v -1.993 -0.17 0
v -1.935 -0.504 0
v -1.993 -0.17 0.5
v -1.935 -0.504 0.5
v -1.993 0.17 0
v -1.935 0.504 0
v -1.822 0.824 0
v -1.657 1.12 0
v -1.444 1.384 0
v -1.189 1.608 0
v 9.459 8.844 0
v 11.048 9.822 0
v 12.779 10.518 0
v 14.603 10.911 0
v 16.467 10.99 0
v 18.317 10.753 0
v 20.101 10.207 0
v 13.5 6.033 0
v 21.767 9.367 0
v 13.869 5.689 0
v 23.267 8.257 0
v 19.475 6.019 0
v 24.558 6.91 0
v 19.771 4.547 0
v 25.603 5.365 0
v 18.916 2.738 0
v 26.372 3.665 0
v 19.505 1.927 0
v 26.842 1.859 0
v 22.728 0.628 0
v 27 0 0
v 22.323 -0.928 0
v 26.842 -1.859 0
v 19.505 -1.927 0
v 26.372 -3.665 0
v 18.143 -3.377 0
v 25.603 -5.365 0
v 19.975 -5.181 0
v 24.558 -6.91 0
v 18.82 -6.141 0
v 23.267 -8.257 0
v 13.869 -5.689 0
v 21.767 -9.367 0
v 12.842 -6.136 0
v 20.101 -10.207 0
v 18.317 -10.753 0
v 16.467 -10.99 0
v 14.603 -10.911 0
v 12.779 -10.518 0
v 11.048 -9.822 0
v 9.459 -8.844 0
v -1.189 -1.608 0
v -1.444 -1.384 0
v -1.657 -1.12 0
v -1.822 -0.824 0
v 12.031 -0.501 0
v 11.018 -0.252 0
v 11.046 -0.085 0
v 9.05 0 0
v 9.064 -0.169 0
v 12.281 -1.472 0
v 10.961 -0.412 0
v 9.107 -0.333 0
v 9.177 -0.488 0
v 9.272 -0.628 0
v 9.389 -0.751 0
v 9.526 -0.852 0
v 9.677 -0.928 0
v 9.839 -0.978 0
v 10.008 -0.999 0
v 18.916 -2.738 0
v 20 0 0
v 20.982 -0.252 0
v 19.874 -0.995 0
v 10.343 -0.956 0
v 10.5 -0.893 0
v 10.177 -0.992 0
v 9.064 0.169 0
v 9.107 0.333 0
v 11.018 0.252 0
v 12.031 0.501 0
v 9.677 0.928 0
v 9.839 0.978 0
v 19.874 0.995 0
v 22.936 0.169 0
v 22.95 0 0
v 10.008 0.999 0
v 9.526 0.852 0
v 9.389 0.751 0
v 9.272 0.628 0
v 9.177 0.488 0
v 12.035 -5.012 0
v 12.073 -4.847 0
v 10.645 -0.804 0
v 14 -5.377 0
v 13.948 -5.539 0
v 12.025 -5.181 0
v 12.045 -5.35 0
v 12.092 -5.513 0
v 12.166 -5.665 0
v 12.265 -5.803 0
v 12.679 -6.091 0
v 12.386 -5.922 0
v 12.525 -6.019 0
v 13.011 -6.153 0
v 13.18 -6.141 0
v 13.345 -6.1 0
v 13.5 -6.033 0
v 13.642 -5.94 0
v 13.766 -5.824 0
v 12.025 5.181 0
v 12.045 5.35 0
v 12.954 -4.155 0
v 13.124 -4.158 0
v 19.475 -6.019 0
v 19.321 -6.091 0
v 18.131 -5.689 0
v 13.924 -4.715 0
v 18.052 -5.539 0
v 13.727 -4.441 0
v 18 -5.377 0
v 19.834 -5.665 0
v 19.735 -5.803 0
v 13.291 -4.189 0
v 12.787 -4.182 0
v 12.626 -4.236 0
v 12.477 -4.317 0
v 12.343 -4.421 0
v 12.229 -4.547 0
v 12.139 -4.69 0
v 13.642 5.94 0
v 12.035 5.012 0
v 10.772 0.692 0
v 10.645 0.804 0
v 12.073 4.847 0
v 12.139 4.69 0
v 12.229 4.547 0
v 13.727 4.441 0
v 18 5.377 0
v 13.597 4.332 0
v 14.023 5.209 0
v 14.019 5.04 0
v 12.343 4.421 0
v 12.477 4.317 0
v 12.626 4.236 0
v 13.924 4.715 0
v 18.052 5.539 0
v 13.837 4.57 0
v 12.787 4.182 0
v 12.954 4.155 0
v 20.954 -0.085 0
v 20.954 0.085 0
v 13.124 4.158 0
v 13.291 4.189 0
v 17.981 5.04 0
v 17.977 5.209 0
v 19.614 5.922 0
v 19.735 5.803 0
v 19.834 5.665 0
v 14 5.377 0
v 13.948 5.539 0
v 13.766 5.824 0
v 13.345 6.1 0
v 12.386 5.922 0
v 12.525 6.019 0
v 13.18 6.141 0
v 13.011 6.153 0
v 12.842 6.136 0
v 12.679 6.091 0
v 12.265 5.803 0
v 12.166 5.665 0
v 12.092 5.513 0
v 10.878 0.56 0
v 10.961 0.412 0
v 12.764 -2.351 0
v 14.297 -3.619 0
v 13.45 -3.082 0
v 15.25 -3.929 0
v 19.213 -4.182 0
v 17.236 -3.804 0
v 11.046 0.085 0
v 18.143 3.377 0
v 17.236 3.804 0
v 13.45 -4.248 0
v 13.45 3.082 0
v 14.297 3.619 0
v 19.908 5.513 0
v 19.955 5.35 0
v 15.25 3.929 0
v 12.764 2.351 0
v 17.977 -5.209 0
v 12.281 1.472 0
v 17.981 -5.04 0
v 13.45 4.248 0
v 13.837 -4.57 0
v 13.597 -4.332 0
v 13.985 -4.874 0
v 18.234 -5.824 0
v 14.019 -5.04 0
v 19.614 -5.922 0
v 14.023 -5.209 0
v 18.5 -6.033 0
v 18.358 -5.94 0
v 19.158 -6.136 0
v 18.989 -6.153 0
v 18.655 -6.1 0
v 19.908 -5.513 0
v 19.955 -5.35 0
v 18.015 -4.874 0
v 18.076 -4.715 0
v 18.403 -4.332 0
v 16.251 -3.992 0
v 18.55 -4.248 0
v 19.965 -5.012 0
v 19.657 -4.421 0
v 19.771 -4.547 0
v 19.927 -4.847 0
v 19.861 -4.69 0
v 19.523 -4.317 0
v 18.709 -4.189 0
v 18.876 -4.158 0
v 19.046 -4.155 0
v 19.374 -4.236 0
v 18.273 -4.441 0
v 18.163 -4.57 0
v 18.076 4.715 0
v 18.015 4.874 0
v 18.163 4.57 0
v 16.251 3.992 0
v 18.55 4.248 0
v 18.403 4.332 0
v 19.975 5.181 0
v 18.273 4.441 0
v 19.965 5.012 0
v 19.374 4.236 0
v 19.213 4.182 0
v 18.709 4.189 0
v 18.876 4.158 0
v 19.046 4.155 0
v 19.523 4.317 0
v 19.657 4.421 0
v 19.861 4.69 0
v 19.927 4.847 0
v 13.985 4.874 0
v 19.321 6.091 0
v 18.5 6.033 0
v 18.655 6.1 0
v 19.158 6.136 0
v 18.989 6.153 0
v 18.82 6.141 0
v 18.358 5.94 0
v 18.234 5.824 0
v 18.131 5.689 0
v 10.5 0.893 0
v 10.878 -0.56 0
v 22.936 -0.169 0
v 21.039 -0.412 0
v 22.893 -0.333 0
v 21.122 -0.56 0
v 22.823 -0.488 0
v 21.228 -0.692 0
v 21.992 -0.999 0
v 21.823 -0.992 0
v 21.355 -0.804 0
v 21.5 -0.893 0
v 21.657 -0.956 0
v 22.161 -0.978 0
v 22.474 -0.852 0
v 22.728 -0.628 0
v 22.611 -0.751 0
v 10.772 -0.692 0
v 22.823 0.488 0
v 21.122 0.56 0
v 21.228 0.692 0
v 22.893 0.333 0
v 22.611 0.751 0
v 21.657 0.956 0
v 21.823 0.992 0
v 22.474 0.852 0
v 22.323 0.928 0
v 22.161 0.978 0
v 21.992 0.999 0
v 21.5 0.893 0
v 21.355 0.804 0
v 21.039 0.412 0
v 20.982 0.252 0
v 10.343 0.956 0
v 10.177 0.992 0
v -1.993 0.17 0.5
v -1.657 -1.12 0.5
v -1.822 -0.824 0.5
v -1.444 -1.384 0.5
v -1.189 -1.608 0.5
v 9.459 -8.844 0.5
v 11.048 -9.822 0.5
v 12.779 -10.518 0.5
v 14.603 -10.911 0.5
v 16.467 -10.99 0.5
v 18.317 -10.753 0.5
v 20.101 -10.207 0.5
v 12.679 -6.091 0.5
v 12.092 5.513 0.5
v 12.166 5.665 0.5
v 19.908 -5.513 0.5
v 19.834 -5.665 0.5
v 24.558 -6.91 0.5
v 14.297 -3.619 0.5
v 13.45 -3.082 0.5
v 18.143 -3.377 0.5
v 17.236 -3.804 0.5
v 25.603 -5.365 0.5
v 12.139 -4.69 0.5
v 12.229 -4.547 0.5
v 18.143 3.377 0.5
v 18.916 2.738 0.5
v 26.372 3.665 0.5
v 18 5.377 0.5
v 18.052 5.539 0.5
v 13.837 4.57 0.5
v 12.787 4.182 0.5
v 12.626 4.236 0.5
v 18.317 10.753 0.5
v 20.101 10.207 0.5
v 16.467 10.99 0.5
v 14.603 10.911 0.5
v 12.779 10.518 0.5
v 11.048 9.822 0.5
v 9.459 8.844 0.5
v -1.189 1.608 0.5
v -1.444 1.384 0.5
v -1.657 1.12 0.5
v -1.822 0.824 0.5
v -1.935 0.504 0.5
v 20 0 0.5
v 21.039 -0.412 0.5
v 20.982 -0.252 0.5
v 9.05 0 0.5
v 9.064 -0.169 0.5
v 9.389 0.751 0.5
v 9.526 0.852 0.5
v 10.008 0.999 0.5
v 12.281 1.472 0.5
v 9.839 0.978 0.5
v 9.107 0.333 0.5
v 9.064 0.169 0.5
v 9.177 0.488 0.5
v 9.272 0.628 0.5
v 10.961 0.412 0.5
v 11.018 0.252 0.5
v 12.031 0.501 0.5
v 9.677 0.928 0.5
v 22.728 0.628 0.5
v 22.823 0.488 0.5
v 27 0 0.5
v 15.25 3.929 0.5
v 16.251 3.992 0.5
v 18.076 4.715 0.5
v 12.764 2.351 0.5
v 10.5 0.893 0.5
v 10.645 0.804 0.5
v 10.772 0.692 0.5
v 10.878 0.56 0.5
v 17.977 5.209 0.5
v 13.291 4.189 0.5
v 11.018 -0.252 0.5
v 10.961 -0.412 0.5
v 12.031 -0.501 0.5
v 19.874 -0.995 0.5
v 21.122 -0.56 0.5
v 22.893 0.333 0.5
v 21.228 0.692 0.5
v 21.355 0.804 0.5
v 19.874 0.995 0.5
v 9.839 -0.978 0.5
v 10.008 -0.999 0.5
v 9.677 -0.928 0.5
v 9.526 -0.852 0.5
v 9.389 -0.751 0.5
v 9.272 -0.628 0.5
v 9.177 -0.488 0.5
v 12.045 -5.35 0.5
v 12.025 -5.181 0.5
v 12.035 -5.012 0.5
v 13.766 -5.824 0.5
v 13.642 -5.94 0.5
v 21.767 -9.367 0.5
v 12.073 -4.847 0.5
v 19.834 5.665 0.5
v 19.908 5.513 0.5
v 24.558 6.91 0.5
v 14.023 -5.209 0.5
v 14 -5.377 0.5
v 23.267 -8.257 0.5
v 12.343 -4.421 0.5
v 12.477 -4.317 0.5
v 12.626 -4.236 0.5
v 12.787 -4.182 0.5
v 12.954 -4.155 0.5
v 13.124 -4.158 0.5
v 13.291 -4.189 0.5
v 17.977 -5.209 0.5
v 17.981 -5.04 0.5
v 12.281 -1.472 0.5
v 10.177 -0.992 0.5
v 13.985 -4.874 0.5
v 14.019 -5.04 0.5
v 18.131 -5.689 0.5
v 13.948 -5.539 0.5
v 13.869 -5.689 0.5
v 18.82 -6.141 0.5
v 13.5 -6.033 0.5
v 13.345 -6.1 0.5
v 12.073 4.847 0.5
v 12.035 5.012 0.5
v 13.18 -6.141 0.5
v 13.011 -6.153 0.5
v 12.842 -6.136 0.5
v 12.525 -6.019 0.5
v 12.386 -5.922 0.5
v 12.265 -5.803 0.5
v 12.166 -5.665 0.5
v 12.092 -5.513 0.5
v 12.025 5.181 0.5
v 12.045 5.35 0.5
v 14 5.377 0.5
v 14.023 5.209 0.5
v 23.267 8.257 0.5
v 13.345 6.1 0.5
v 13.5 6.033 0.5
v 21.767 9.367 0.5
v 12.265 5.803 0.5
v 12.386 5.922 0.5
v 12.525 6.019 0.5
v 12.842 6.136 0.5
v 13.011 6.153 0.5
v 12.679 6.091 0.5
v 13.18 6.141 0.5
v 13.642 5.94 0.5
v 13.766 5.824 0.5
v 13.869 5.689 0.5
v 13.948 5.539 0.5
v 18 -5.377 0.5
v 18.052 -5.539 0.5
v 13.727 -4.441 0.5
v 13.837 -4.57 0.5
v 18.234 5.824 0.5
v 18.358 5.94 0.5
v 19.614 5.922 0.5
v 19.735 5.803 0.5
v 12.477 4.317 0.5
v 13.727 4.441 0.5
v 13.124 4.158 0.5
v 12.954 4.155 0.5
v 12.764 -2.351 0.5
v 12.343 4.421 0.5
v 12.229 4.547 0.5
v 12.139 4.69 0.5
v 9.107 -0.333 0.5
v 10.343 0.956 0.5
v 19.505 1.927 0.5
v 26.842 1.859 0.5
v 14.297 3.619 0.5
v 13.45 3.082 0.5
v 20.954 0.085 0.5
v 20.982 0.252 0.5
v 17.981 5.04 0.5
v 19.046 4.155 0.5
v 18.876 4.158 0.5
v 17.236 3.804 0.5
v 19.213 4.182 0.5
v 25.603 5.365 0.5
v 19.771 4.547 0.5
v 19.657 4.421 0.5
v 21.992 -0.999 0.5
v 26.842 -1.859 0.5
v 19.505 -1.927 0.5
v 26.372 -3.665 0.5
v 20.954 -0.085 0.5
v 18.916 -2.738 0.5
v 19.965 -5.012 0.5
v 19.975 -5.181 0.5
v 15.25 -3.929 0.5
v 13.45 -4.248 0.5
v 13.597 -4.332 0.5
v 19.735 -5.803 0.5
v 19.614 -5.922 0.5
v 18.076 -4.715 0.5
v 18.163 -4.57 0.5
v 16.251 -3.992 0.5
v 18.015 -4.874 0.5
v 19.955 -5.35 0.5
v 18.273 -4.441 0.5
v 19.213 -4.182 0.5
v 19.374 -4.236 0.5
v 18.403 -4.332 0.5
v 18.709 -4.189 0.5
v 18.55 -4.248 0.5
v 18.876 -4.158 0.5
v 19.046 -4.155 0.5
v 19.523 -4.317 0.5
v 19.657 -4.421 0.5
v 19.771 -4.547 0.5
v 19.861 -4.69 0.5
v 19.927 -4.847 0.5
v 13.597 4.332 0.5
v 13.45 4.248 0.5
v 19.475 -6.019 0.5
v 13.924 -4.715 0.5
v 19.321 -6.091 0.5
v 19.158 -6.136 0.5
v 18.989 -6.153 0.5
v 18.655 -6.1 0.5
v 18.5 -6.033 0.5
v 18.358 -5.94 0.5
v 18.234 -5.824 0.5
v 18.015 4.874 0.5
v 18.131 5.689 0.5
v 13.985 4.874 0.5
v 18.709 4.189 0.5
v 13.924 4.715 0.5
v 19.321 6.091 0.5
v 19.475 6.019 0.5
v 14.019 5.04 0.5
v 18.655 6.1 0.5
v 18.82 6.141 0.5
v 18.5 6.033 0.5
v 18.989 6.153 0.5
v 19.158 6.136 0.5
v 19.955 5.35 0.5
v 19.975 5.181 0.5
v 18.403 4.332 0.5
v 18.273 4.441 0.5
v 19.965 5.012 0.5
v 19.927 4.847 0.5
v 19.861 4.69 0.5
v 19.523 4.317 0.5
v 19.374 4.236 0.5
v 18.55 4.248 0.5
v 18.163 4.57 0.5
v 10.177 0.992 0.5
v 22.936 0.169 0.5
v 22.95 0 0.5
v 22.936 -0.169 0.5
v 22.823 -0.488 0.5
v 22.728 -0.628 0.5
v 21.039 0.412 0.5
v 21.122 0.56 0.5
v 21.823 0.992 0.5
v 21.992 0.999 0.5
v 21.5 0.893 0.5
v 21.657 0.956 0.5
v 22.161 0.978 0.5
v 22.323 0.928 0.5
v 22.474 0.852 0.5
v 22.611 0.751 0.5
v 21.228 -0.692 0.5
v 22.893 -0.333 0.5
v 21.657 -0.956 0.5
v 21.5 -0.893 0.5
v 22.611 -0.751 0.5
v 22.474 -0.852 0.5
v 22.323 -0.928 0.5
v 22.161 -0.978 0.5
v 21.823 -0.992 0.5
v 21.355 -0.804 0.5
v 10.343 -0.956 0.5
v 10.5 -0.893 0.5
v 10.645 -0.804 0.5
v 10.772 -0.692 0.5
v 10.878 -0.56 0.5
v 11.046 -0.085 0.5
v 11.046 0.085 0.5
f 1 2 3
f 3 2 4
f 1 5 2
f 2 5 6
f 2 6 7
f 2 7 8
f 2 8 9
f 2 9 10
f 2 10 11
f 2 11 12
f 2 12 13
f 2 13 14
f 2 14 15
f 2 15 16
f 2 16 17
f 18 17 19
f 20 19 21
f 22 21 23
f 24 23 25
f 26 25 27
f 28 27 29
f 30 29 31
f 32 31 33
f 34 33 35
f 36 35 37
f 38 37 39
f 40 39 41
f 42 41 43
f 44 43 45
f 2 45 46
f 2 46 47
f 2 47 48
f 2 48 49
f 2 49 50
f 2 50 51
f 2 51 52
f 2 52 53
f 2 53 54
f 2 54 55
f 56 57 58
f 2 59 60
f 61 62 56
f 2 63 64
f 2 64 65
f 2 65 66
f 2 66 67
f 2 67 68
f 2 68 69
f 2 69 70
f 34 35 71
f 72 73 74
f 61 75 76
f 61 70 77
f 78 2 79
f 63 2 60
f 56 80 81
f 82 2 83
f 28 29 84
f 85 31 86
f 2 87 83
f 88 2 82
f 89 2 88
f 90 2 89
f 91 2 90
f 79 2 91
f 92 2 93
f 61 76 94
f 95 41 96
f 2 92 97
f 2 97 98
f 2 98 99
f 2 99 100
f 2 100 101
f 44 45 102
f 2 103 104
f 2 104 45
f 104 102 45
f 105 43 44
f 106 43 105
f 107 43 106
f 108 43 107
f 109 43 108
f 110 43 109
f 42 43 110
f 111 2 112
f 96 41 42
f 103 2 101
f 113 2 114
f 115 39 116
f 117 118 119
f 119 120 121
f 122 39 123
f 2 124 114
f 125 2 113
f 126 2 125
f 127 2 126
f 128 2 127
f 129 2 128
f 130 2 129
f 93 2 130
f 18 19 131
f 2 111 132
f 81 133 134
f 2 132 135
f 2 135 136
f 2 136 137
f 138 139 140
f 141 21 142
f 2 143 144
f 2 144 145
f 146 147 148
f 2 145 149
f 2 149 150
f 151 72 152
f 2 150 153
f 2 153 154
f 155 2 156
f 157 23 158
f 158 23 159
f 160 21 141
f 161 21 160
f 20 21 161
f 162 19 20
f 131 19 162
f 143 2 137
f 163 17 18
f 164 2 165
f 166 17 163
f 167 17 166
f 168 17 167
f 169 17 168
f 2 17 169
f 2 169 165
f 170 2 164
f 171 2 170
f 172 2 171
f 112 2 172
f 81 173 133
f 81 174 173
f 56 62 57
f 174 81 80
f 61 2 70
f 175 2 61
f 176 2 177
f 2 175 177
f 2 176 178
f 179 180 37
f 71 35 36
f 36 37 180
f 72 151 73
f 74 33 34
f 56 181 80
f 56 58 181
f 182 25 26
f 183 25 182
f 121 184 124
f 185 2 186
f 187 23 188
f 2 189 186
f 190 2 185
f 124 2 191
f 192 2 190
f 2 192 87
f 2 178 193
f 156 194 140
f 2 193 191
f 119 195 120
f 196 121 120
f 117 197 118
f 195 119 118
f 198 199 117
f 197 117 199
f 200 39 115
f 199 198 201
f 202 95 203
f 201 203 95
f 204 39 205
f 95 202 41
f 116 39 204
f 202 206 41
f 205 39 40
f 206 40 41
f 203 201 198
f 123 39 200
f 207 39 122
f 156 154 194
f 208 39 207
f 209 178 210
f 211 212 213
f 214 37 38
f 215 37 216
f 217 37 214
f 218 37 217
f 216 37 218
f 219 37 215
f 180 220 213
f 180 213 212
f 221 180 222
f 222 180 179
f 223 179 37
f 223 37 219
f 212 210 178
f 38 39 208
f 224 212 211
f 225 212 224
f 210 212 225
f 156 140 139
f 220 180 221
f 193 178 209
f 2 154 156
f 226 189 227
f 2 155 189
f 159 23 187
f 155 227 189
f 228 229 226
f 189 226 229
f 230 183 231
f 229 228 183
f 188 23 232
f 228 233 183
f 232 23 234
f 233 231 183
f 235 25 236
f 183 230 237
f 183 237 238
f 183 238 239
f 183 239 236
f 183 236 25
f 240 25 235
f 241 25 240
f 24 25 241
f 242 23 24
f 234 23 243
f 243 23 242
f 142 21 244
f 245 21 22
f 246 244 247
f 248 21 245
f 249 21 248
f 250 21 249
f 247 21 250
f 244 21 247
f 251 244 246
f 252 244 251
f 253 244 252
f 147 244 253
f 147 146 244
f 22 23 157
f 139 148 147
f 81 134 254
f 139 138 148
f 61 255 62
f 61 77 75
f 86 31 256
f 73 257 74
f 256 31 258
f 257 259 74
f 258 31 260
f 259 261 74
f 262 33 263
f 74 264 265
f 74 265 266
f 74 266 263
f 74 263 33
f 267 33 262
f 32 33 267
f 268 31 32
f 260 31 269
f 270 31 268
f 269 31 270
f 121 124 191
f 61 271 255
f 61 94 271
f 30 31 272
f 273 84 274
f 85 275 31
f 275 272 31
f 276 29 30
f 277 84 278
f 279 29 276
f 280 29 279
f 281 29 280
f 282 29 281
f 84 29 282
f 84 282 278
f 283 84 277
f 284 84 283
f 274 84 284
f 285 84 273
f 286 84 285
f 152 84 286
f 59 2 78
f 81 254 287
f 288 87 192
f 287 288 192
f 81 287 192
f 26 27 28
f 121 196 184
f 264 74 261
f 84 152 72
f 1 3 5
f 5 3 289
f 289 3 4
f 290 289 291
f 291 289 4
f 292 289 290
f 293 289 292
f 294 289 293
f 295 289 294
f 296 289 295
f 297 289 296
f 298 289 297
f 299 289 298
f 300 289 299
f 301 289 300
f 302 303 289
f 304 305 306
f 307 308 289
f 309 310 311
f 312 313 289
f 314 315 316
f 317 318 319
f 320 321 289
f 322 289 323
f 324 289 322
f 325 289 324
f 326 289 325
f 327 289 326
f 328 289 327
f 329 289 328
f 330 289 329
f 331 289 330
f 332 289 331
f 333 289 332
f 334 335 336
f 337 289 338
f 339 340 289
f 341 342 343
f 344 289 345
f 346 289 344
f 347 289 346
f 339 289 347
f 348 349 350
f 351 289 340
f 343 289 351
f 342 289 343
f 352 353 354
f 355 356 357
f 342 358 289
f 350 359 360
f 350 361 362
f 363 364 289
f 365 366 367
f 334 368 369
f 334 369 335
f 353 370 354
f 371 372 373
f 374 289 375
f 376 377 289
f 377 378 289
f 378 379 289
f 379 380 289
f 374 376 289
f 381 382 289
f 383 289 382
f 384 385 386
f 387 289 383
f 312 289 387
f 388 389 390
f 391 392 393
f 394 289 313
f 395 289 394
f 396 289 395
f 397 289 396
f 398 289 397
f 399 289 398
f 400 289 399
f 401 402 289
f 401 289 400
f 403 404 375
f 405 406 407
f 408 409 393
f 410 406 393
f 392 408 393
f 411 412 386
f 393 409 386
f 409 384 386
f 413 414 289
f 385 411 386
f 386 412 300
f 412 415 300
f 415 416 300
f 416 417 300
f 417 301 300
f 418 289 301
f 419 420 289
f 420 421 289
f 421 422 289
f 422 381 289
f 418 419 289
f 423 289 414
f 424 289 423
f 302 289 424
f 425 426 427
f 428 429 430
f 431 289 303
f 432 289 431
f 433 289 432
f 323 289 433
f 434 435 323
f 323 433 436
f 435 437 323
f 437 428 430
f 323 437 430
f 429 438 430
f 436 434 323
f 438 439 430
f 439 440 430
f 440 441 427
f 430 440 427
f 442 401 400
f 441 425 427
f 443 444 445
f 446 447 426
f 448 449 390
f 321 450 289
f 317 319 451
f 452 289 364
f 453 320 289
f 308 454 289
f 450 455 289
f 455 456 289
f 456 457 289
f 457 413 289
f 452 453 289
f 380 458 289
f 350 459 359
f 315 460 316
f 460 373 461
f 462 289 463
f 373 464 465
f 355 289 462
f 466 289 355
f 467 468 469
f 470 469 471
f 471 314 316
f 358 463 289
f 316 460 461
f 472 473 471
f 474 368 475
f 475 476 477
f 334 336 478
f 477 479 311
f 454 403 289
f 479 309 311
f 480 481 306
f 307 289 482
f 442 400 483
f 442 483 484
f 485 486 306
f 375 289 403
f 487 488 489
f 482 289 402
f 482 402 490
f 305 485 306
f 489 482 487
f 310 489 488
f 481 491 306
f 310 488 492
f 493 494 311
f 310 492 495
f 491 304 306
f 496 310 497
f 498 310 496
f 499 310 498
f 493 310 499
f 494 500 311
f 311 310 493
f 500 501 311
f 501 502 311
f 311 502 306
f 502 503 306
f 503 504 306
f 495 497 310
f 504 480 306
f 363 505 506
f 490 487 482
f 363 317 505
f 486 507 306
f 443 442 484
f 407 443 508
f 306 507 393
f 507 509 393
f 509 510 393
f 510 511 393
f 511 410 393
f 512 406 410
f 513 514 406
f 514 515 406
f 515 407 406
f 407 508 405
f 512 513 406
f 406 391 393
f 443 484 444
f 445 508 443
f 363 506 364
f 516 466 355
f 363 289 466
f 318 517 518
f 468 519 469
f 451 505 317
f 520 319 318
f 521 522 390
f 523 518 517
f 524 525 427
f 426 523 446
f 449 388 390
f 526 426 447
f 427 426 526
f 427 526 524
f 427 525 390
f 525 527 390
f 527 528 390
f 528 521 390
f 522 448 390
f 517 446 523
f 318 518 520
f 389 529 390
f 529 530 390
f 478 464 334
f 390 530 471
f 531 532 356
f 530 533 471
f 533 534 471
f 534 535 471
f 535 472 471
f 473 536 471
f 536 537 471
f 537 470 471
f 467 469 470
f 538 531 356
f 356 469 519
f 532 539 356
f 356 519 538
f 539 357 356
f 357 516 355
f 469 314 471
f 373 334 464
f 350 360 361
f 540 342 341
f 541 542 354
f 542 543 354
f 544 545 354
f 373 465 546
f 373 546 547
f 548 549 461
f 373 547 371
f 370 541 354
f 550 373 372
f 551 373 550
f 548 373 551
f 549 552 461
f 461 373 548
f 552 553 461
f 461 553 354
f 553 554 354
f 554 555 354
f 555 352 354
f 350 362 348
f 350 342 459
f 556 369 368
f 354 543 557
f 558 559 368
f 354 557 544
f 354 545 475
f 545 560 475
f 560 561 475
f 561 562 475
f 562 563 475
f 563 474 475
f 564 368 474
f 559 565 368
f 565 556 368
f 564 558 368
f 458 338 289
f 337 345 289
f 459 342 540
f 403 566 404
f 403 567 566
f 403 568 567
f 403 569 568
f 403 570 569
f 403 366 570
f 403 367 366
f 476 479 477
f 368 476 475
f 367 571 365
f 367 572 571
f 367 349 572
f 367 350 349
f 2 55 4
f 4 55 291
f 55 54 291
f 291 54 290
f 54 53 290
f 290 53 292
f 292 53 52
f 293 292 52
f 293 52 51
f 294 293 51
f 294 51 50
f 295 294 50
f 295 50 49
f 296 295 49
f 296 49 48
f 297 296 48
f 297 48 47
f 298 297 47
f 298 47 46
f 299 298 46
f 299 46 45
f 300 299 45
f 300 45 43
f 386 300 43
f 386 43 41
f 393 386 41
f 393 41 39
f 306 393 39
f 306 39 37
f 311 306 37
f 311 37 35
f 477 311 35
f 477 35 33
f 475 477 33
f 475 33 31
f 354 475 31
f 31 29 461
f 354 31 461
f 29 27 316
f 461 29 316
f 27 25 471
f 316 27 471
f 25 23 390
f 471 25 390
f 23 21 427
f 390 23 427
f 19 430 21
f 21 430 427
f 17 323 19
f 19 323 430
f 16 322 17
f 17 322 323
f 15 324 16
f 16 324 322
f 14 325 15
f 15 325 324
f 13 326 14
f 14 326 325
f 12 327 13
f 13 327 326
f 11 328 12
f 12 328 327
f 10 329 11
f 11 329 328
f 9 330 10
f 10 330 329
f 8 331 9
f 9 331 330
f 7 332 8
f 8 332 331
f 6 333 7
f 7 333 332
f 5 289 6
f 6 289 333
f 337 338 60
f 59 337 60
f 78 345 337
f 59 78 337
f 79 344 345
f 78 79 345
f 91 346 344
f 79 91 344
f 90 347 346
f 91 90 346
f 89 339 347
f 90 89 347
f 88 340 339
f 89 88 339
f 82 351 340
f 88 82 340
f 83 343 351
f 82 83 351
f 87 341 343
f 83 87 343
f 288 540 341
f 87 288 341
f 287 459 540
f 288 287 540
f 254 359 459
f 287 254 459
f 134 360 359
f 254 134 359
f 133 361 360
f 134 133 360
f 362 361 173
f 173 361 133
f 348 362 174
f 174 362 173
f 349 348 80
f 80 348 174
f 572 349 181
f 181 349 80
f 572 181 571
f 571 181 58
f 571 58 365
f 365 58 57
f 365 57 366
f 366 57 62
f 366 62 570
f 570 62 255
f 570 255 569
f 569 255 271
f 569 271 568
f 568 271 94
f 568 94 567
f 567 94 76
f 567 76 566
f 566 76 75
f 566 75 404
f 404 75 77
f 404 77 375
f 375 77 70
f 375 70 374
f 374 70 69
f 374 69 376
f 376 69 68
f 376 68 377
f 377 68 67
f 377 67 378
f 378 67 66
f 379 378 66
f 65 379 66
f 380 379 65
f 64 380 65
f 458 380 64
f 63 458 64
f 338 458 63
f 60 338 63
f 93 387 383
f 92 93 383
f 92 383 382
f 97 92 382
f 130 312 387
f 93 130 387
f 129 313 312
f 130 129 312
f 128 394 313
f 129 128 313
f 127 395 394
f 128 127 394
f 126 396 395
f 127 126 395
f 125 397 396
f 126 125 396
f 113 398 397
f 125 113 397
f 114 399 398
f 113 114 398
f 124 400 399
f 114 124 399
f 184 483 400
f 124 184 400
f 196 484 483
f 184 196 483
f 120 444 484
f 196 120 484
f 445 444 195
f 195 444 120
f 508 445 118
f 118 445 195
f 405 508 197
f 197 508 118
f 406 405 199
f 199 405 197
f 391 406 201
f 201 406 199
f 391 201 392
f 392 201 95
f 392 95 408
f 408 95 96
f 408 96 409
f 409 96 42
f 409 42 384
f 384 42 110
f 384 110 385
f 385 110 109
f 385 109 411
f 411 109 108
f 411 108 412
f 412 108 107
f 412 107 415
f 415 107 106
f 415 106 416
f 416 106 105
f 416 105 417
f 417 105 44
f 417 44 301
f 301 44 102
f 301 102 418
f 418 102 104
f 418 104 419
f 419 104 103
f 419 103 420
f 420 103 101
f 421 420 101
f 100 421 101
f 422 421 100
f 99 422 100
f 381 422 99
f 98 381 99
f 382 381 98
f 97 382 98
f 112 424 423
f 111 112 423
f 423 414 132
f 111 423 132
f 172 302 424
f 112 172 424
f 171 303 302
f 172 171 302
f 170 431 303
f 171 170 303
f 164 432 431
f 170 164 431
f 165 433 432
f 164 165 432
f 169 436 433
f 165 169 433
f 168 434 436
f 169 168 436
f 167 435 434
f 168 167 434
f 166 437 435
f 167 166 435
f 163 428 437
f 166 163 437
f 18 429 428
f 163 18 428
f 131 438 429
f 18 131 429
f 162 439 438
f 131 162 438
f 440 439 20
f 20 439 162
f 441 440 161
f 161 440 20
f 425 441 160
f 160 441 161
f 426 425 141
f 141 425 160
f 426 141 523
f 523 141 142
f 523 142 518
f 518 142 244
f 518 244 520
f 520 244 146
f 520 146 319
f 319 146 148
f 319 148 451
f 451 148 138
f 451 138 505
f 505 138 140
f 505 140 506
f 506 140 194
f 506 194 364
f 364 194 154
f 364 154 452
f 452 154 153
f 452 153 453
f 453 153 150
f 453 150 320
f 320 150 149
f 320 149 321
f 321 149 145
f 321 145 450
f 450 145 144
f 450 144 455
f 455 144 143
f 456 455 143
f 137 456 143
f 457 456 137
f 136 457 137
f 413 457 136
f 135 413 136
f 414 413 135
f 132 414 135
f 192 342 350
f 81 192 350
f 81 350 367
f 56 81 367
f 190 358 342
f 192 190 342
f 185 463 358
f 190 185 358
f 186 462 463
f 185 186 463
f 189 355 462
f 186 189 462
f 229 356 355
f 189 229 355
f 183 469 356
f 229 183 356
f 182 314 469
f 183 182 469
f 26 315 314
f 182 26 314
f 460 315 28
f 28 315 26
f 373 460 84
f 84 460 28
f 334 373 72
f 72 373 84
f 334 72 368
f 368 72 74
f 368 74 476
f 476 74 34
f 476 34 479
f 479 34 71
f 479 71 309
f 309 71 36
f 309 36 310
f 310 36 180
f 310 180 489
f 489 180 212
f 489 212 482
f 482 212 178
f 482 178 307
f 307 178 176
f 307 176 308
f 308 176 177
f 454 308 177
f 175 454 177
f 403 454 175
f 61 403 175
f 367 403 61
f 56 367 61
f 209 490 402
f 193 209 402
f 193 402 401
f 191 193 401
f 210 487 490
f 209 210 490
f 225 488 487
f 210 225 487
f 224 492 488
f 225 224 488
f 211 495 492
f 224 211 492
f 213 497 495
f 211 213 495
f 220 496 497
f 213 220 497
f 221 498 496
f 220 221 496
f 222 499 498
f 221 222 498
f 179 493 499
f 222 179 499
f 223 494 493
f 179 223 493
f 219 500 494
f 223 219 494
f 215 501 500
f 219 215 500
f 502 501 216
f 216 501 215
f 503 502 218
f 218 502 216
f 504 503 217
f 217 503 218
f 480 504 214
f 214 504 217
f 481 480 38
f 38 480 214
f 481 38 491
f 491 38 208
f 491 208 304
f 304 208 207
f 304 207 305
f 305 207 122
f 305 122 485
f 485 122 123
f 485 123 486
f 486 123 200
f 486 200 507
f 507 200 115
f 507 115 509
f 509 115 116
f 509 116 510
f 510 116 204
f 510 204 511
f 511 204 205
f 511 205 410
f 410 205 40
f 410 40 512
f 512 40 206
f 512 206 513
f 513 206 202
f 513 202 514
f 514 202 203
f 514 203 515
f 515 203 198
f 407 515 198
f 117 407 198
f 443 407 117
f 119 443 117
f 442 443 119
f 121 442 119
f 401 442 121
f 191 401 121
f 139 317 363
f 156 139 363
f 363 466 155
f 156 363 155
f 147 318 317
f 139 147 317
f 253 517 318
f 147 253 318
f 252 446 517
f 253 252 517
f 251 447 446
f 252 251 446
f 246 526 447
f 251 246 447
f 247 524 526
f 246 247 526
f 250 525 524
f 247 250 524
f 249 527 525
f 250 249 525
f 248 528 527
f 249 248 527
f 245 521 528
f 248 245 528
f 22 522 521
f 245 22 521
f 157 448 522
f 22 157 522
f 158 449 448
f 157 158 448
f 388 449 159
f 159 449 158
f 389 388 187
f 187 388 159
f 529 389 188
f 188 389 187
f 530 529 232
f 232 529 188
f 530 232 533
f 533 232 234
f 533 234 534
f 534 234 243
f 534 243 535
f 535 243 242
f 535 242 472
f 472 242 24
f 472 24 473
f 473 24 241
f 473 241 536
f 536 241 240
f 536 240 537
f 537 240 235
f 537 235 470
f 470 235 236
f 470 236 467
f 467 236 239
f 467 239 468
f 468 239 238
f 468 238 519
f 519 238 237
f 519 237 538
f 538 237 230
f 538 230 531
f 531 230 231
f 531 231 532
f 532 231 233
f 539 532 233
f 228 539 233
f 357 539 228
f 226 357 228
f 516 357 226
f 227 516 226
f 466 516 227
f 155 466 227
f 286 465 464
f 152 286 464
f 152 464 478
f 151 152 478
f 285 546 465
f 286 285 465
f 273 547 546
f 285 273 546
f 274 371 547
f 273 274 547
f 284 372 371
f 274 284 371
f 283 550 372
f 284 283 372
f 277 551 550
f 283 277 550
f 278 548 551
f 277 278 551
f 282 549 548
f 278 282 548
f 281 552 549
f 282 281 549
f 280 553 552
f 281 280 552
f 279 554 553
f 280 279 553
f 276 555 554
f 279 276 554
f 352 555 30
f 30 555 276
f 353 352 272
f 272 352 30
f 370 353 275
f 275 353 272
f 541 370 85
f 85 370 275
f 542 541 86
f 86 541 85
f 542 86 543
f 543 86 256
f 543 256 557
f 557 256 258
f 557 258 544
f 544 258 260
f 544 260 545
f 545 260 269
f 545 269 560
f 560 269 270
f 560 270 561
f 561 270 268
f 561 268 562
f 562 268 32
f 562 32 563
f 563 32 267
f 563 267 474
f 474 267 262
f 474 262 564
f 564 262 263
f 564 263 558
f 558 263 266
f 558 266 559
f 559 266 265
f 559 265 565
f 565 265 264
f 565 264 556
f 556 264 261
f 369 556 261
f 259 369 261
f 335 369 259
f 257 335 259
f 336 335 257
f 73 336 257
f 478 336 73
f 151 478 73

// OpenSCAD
/*
    Guitar Pick.

    Copyright 2014, Peter and Tim Molteno. tim@molteno.net
  
    This program is free software: you can redistribute it and/or modify
    it under the terms of the GNU General Public License as published by
    the Free Software Foundation, either version 3 of the License, or
    (at your option) any later version.

    This program is distributed in the hope that it will be useful,
    but WITHOUT ANY WARRANTY; without even the implied warranty of
    MERCHANTABILITY or FITNESS FOR A PARTICULAR PURPOSE.  See the
    GNU General Public License for more details.

    You should have received a copy of the GNU General Public License
    along with this program.  If not, see <http://www.gnu.org/licenses/>.
*/
$fn = 37;
pick_length = 16;
tip_radius = 2;
hold_radius = 11;

module pick() {
  hull() {
    translate([0,0,0.0]) cylinder(r=tip_radius,h=0.5);
    translate([pick_length,0,0]) cylinder(r=hold_radius,h=0.5);
  }
}

difference() {
  pick();

  // Now decorate the pick with some features.
  translate([pick_length,0,17]) sphere(r=17, center=true, $fn=51);
  translate([pick_length,0,]) cylinder(r=4, h=10, center=true, $fn=25);
  translate([pick_length,0,]) {
    for (angle = [0:60:300]) {
      rotate(angle) translate([5.95,0,0]) cylinder(r=1, h=5, center=true);
    }
  }
}
